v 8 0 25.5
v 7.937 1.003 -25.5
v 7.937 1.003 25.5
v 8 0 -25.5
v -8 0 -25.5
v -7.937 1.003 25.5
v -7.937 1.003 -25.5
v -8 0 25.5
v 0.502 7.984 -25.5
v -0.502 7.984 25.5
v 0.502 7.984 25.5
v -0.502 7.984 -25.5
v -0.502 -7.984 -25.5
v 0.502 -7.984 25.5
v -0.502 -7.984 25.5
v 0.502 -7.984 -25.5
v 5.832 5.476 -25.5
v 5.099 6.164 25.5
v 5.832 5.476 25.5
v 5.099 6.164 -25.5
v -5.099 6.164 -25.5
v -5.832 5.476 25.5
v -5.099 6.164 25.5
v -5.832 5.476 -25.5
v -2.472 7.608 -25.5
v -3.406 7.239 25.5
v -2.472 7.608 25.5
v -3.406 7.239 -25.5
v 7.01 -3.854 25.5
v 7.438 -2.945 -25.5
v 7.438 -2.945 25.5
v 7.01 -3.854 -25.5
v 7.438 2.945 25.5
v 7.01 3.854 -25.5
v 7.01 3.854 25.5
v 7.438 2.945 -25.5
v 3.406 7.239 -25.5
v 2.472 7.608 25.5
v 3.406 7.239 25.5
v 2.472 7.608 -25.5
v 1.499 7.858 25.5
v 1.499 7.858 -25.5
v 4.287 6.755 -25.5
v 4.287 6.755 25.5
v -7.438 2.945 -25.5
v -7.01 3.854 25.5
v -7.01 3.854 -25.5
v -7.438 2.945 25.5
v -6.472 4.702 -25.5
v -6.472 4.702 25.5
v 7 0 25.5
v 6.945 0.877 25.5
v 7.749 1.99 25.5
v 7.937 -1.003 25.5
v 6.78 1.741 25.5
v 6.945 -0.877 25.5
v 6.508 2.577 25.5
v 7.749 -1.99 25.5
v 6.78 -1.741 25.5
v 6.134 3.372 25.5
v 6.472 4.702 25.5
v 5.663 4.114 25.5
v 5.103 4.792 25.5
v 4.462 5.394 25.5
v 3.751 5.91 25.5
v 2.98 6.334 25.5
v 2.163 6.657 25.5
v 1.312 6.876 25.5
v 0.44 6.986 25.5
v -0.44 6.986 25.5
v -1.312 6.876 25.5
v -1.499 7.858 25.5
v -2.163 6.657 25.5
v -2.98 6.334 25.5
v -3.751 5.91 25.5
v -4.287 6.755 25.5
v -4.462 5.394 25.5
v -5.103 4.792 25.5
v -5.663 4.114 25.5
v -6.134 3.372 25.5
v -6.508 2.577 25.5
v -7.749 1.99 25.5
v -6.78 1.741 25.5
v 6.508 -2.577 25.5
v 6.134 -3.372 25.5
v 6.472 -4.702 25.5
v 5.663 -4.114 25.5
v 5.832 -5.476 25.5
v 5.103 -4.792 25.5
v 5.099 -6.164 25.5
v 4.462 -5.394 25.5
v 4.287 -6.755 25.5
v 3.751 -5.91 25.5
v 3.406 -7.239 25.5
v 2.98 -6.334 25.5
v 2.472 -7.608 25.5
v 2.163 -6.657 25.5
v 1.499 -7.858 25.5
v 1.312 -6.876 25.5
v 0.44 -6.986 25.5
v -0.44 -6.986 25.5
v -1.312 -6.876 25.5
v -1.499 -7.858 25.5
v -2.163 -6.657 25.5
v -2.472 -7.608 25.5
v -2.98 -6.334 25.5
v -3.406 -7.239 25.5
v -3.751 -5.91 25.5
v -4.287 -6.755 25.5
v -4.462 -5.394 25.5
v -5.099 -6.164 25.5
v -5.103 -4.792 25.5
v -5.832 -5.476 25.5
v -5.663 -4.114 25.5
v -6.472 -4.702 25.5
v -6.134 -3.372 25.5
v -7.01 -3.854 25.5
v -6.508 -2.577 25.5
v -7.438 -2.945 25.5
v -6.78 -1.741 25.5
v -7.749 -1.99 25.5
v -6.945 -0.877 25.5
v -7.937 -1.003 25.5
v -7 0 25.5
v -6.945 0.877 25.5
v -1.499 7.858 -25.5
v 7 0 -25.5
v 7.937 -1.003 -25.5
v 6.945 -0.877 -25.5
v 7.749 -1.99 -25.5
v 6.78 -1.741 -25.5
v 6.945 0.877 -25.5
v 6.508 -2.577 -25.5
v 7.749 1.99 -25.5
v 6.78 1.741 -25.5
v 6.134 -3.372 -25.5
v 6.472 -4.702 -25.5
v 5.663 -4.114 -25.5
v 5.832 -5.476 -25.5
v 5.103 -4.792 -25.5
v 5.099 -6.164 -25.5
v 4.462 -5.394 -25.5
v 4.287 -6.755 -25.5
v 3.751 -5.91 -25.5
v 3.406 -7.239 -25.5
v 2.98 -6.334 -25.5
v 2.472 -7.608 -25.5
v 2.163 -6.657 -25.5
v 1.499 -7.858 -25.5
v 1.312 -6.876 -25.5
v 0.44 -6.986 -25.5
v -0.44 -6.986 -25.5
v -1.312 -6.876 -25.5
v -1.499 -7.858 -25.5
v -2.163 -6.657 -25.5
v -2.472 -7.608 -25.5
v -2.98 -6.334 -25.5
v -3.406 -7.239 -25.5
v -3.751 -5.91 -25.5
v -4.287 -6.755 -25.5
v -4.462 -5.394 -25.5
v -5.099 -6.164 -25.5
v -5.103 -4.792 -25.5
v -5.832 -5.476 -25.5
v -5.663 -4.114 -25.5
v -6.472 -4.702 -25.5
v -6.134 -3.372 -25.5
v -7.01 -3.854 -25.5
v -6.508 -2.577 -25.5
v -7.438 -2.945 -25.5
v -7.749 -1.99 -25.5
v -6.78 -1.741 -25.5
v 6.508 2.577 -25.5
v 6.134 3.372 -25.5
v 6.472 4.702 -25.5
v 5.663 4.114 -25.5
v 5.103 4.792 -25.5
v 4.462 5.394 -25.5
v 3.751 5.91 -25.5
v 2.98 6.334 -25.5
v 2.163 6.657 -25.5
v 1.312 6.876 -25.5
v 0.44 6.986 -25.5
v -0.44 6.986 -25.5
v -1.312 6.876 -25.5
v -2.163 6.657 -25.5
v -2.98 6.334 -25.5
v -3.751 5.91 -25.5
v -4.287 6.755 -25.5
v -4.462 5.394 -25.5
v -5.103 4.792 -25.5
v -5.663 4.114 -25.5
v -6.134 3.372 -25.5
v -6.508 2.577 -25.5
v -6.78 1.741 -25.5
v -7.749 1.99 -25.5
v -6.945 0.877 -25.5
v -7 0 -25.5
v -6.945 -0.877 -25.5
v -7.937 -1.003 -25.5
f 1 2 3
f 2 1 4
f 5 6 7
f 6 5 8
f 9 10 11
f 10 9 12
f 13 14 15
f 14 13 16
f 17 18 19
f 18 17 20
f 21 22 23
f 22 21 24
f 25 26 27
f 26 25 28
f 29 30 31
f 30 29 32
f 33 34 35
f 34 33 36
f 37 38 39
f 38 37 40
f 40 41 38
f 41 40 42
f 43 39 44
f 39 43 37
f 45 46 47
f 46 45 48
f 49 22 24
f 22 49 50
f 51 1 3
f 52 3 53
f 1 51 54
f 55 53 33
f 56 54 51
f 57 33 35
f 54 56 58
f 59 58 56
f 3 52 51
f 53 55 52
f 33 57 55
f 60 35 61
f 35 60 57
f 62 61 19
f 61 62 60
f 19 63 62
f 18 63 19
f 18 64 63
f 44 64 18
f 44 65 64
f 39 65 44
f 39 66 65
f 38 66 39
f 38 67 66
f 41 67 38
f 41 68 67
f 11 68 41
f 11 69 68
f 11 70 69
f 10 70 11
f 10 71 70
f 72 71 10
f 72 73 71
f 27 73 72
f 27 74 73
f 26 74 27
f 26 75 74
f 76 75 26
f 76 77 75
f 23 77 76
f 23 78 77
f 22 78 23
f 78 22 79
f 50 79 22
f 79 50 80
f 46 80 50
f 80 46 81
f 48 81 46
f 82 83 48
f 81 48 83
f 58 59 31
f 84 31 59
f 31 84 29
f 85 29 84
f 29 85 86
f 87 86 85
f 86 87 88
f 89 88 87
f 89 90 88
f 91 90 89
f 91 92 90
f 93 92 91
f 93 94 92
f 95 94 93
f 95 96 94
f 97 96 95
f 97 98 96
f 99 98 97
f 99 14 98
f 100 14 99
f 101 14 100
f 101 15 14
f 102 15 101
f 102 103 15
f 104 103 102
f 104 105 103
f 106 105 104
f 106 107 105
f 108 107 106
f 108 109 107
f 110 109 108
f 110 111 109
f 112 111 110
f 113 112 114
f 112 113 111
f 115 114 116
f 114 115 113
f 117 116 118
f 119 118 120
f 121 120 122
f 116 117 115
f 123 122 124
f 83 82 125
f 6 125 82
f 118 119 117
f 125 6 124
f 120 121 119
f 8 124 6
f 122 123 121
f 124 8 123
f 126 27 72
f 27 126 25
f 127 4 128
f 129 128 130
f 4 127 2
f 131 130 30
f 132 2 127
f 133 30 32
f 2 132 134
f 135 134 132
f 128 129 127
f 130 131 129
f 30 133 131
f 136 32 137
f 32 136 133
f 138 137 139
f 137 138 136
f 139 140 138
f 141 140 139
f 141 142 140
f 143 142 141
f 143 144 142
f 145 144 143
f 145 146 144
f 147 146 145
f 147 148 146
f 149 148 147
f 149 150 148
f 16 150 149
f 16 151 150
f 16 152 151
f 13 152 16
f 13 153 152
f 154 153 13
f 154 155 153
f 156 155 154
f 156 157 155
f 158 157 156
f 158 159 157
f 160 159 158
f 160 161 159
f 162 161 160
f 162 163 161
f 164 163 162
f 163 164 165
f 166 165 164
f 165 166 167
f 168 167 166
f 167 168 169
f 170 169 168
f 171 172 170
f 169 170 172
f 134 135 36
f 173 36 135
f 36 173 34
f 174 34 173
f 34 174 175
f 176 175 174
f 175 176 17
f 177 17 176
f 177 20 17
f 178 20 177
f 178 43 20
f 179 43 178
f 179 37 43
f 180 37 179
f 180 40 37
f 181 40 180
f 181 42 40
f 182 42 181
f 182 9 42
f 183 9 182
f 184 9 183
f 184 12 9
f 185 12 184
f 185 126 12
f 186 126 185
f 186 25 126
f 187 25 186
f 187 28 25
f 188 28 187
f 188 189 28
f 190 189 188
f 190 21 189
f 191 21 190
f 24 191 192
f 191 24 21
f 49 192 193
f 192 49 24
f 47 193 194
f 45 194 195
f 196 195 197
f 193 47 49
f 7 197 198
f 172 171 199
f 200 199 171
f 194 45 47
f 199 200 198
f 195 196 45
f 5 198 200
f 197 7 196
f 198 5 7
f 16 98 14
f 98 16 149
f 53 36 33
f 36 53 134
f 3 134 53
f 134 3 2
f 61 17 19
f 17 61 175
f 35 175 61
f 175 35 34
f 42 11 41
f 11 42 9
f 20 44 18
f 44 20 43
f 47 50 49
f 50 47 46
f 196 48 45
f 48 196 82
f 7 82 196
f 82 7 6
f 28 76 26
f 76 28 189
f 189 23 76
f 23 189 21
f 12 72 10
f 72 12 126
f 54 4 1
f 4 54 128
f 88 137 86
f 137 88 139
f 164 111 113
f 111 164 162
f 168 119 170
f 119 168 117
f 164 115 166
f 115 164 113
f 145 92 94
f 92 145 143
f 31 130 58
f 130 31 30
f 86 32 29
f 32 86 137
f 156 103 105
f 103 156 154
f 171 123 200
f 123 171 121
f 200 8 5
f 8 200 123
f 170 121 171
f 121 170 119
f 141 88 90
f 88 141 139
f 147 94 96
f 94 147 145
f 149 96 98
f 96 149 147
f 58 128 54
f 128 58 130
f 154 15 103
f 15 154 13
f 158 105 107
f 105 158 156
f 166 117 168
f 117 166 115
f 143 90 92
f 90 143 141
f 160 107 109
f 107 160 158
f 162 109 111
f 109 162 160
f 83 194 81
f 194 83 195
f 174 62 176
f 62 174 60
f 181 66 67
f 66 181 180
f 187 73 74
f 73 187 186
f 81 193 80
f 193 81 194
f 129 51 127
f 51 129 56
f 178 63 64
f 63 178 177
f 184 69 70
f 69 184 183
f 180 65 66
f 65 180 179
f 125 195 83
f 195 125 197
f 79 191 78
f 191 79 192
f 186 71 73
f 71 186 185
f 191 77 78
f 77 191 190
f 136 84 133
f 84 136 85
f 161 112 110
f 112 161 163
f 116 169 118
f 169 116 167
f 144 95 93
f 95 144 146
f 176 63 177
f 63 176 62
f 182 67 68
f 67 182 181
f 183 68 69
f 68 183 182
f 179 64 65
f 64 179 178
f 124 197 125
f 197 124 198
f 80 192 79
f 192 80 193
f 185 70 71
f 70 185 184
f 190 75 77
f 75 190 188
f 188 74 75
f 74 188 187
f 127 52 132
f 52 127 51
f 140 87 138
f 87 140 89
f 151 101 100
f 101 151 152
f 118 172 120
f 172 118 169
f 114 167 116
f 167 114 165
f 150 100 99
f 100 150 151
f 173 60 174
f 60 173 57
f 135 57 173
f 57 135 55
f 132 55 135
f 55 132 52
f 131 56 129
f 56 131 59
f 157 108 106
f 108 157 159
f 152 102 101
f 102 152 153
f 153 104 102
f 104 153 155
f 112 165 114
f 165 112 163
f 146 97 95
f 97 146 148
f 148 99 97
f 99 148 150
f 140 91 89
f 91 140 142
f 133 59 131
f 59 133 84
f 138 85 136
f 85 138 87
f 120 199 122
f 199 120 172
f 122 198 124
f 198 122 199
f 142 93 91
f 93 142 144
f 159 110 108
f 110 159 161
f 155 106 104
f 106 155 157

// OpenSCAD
$fn = 50;


difference() {
	union() {
		translate(v = [0, 0, -25.5000000000]) {
			cylinder(h = 51, r = 8.0000000000);
		}
	}
	union() {
		translate(v = [0, 0, -100.0000000000]) {
			cylinder(h = 200, r = 7);
		}
	}
}
